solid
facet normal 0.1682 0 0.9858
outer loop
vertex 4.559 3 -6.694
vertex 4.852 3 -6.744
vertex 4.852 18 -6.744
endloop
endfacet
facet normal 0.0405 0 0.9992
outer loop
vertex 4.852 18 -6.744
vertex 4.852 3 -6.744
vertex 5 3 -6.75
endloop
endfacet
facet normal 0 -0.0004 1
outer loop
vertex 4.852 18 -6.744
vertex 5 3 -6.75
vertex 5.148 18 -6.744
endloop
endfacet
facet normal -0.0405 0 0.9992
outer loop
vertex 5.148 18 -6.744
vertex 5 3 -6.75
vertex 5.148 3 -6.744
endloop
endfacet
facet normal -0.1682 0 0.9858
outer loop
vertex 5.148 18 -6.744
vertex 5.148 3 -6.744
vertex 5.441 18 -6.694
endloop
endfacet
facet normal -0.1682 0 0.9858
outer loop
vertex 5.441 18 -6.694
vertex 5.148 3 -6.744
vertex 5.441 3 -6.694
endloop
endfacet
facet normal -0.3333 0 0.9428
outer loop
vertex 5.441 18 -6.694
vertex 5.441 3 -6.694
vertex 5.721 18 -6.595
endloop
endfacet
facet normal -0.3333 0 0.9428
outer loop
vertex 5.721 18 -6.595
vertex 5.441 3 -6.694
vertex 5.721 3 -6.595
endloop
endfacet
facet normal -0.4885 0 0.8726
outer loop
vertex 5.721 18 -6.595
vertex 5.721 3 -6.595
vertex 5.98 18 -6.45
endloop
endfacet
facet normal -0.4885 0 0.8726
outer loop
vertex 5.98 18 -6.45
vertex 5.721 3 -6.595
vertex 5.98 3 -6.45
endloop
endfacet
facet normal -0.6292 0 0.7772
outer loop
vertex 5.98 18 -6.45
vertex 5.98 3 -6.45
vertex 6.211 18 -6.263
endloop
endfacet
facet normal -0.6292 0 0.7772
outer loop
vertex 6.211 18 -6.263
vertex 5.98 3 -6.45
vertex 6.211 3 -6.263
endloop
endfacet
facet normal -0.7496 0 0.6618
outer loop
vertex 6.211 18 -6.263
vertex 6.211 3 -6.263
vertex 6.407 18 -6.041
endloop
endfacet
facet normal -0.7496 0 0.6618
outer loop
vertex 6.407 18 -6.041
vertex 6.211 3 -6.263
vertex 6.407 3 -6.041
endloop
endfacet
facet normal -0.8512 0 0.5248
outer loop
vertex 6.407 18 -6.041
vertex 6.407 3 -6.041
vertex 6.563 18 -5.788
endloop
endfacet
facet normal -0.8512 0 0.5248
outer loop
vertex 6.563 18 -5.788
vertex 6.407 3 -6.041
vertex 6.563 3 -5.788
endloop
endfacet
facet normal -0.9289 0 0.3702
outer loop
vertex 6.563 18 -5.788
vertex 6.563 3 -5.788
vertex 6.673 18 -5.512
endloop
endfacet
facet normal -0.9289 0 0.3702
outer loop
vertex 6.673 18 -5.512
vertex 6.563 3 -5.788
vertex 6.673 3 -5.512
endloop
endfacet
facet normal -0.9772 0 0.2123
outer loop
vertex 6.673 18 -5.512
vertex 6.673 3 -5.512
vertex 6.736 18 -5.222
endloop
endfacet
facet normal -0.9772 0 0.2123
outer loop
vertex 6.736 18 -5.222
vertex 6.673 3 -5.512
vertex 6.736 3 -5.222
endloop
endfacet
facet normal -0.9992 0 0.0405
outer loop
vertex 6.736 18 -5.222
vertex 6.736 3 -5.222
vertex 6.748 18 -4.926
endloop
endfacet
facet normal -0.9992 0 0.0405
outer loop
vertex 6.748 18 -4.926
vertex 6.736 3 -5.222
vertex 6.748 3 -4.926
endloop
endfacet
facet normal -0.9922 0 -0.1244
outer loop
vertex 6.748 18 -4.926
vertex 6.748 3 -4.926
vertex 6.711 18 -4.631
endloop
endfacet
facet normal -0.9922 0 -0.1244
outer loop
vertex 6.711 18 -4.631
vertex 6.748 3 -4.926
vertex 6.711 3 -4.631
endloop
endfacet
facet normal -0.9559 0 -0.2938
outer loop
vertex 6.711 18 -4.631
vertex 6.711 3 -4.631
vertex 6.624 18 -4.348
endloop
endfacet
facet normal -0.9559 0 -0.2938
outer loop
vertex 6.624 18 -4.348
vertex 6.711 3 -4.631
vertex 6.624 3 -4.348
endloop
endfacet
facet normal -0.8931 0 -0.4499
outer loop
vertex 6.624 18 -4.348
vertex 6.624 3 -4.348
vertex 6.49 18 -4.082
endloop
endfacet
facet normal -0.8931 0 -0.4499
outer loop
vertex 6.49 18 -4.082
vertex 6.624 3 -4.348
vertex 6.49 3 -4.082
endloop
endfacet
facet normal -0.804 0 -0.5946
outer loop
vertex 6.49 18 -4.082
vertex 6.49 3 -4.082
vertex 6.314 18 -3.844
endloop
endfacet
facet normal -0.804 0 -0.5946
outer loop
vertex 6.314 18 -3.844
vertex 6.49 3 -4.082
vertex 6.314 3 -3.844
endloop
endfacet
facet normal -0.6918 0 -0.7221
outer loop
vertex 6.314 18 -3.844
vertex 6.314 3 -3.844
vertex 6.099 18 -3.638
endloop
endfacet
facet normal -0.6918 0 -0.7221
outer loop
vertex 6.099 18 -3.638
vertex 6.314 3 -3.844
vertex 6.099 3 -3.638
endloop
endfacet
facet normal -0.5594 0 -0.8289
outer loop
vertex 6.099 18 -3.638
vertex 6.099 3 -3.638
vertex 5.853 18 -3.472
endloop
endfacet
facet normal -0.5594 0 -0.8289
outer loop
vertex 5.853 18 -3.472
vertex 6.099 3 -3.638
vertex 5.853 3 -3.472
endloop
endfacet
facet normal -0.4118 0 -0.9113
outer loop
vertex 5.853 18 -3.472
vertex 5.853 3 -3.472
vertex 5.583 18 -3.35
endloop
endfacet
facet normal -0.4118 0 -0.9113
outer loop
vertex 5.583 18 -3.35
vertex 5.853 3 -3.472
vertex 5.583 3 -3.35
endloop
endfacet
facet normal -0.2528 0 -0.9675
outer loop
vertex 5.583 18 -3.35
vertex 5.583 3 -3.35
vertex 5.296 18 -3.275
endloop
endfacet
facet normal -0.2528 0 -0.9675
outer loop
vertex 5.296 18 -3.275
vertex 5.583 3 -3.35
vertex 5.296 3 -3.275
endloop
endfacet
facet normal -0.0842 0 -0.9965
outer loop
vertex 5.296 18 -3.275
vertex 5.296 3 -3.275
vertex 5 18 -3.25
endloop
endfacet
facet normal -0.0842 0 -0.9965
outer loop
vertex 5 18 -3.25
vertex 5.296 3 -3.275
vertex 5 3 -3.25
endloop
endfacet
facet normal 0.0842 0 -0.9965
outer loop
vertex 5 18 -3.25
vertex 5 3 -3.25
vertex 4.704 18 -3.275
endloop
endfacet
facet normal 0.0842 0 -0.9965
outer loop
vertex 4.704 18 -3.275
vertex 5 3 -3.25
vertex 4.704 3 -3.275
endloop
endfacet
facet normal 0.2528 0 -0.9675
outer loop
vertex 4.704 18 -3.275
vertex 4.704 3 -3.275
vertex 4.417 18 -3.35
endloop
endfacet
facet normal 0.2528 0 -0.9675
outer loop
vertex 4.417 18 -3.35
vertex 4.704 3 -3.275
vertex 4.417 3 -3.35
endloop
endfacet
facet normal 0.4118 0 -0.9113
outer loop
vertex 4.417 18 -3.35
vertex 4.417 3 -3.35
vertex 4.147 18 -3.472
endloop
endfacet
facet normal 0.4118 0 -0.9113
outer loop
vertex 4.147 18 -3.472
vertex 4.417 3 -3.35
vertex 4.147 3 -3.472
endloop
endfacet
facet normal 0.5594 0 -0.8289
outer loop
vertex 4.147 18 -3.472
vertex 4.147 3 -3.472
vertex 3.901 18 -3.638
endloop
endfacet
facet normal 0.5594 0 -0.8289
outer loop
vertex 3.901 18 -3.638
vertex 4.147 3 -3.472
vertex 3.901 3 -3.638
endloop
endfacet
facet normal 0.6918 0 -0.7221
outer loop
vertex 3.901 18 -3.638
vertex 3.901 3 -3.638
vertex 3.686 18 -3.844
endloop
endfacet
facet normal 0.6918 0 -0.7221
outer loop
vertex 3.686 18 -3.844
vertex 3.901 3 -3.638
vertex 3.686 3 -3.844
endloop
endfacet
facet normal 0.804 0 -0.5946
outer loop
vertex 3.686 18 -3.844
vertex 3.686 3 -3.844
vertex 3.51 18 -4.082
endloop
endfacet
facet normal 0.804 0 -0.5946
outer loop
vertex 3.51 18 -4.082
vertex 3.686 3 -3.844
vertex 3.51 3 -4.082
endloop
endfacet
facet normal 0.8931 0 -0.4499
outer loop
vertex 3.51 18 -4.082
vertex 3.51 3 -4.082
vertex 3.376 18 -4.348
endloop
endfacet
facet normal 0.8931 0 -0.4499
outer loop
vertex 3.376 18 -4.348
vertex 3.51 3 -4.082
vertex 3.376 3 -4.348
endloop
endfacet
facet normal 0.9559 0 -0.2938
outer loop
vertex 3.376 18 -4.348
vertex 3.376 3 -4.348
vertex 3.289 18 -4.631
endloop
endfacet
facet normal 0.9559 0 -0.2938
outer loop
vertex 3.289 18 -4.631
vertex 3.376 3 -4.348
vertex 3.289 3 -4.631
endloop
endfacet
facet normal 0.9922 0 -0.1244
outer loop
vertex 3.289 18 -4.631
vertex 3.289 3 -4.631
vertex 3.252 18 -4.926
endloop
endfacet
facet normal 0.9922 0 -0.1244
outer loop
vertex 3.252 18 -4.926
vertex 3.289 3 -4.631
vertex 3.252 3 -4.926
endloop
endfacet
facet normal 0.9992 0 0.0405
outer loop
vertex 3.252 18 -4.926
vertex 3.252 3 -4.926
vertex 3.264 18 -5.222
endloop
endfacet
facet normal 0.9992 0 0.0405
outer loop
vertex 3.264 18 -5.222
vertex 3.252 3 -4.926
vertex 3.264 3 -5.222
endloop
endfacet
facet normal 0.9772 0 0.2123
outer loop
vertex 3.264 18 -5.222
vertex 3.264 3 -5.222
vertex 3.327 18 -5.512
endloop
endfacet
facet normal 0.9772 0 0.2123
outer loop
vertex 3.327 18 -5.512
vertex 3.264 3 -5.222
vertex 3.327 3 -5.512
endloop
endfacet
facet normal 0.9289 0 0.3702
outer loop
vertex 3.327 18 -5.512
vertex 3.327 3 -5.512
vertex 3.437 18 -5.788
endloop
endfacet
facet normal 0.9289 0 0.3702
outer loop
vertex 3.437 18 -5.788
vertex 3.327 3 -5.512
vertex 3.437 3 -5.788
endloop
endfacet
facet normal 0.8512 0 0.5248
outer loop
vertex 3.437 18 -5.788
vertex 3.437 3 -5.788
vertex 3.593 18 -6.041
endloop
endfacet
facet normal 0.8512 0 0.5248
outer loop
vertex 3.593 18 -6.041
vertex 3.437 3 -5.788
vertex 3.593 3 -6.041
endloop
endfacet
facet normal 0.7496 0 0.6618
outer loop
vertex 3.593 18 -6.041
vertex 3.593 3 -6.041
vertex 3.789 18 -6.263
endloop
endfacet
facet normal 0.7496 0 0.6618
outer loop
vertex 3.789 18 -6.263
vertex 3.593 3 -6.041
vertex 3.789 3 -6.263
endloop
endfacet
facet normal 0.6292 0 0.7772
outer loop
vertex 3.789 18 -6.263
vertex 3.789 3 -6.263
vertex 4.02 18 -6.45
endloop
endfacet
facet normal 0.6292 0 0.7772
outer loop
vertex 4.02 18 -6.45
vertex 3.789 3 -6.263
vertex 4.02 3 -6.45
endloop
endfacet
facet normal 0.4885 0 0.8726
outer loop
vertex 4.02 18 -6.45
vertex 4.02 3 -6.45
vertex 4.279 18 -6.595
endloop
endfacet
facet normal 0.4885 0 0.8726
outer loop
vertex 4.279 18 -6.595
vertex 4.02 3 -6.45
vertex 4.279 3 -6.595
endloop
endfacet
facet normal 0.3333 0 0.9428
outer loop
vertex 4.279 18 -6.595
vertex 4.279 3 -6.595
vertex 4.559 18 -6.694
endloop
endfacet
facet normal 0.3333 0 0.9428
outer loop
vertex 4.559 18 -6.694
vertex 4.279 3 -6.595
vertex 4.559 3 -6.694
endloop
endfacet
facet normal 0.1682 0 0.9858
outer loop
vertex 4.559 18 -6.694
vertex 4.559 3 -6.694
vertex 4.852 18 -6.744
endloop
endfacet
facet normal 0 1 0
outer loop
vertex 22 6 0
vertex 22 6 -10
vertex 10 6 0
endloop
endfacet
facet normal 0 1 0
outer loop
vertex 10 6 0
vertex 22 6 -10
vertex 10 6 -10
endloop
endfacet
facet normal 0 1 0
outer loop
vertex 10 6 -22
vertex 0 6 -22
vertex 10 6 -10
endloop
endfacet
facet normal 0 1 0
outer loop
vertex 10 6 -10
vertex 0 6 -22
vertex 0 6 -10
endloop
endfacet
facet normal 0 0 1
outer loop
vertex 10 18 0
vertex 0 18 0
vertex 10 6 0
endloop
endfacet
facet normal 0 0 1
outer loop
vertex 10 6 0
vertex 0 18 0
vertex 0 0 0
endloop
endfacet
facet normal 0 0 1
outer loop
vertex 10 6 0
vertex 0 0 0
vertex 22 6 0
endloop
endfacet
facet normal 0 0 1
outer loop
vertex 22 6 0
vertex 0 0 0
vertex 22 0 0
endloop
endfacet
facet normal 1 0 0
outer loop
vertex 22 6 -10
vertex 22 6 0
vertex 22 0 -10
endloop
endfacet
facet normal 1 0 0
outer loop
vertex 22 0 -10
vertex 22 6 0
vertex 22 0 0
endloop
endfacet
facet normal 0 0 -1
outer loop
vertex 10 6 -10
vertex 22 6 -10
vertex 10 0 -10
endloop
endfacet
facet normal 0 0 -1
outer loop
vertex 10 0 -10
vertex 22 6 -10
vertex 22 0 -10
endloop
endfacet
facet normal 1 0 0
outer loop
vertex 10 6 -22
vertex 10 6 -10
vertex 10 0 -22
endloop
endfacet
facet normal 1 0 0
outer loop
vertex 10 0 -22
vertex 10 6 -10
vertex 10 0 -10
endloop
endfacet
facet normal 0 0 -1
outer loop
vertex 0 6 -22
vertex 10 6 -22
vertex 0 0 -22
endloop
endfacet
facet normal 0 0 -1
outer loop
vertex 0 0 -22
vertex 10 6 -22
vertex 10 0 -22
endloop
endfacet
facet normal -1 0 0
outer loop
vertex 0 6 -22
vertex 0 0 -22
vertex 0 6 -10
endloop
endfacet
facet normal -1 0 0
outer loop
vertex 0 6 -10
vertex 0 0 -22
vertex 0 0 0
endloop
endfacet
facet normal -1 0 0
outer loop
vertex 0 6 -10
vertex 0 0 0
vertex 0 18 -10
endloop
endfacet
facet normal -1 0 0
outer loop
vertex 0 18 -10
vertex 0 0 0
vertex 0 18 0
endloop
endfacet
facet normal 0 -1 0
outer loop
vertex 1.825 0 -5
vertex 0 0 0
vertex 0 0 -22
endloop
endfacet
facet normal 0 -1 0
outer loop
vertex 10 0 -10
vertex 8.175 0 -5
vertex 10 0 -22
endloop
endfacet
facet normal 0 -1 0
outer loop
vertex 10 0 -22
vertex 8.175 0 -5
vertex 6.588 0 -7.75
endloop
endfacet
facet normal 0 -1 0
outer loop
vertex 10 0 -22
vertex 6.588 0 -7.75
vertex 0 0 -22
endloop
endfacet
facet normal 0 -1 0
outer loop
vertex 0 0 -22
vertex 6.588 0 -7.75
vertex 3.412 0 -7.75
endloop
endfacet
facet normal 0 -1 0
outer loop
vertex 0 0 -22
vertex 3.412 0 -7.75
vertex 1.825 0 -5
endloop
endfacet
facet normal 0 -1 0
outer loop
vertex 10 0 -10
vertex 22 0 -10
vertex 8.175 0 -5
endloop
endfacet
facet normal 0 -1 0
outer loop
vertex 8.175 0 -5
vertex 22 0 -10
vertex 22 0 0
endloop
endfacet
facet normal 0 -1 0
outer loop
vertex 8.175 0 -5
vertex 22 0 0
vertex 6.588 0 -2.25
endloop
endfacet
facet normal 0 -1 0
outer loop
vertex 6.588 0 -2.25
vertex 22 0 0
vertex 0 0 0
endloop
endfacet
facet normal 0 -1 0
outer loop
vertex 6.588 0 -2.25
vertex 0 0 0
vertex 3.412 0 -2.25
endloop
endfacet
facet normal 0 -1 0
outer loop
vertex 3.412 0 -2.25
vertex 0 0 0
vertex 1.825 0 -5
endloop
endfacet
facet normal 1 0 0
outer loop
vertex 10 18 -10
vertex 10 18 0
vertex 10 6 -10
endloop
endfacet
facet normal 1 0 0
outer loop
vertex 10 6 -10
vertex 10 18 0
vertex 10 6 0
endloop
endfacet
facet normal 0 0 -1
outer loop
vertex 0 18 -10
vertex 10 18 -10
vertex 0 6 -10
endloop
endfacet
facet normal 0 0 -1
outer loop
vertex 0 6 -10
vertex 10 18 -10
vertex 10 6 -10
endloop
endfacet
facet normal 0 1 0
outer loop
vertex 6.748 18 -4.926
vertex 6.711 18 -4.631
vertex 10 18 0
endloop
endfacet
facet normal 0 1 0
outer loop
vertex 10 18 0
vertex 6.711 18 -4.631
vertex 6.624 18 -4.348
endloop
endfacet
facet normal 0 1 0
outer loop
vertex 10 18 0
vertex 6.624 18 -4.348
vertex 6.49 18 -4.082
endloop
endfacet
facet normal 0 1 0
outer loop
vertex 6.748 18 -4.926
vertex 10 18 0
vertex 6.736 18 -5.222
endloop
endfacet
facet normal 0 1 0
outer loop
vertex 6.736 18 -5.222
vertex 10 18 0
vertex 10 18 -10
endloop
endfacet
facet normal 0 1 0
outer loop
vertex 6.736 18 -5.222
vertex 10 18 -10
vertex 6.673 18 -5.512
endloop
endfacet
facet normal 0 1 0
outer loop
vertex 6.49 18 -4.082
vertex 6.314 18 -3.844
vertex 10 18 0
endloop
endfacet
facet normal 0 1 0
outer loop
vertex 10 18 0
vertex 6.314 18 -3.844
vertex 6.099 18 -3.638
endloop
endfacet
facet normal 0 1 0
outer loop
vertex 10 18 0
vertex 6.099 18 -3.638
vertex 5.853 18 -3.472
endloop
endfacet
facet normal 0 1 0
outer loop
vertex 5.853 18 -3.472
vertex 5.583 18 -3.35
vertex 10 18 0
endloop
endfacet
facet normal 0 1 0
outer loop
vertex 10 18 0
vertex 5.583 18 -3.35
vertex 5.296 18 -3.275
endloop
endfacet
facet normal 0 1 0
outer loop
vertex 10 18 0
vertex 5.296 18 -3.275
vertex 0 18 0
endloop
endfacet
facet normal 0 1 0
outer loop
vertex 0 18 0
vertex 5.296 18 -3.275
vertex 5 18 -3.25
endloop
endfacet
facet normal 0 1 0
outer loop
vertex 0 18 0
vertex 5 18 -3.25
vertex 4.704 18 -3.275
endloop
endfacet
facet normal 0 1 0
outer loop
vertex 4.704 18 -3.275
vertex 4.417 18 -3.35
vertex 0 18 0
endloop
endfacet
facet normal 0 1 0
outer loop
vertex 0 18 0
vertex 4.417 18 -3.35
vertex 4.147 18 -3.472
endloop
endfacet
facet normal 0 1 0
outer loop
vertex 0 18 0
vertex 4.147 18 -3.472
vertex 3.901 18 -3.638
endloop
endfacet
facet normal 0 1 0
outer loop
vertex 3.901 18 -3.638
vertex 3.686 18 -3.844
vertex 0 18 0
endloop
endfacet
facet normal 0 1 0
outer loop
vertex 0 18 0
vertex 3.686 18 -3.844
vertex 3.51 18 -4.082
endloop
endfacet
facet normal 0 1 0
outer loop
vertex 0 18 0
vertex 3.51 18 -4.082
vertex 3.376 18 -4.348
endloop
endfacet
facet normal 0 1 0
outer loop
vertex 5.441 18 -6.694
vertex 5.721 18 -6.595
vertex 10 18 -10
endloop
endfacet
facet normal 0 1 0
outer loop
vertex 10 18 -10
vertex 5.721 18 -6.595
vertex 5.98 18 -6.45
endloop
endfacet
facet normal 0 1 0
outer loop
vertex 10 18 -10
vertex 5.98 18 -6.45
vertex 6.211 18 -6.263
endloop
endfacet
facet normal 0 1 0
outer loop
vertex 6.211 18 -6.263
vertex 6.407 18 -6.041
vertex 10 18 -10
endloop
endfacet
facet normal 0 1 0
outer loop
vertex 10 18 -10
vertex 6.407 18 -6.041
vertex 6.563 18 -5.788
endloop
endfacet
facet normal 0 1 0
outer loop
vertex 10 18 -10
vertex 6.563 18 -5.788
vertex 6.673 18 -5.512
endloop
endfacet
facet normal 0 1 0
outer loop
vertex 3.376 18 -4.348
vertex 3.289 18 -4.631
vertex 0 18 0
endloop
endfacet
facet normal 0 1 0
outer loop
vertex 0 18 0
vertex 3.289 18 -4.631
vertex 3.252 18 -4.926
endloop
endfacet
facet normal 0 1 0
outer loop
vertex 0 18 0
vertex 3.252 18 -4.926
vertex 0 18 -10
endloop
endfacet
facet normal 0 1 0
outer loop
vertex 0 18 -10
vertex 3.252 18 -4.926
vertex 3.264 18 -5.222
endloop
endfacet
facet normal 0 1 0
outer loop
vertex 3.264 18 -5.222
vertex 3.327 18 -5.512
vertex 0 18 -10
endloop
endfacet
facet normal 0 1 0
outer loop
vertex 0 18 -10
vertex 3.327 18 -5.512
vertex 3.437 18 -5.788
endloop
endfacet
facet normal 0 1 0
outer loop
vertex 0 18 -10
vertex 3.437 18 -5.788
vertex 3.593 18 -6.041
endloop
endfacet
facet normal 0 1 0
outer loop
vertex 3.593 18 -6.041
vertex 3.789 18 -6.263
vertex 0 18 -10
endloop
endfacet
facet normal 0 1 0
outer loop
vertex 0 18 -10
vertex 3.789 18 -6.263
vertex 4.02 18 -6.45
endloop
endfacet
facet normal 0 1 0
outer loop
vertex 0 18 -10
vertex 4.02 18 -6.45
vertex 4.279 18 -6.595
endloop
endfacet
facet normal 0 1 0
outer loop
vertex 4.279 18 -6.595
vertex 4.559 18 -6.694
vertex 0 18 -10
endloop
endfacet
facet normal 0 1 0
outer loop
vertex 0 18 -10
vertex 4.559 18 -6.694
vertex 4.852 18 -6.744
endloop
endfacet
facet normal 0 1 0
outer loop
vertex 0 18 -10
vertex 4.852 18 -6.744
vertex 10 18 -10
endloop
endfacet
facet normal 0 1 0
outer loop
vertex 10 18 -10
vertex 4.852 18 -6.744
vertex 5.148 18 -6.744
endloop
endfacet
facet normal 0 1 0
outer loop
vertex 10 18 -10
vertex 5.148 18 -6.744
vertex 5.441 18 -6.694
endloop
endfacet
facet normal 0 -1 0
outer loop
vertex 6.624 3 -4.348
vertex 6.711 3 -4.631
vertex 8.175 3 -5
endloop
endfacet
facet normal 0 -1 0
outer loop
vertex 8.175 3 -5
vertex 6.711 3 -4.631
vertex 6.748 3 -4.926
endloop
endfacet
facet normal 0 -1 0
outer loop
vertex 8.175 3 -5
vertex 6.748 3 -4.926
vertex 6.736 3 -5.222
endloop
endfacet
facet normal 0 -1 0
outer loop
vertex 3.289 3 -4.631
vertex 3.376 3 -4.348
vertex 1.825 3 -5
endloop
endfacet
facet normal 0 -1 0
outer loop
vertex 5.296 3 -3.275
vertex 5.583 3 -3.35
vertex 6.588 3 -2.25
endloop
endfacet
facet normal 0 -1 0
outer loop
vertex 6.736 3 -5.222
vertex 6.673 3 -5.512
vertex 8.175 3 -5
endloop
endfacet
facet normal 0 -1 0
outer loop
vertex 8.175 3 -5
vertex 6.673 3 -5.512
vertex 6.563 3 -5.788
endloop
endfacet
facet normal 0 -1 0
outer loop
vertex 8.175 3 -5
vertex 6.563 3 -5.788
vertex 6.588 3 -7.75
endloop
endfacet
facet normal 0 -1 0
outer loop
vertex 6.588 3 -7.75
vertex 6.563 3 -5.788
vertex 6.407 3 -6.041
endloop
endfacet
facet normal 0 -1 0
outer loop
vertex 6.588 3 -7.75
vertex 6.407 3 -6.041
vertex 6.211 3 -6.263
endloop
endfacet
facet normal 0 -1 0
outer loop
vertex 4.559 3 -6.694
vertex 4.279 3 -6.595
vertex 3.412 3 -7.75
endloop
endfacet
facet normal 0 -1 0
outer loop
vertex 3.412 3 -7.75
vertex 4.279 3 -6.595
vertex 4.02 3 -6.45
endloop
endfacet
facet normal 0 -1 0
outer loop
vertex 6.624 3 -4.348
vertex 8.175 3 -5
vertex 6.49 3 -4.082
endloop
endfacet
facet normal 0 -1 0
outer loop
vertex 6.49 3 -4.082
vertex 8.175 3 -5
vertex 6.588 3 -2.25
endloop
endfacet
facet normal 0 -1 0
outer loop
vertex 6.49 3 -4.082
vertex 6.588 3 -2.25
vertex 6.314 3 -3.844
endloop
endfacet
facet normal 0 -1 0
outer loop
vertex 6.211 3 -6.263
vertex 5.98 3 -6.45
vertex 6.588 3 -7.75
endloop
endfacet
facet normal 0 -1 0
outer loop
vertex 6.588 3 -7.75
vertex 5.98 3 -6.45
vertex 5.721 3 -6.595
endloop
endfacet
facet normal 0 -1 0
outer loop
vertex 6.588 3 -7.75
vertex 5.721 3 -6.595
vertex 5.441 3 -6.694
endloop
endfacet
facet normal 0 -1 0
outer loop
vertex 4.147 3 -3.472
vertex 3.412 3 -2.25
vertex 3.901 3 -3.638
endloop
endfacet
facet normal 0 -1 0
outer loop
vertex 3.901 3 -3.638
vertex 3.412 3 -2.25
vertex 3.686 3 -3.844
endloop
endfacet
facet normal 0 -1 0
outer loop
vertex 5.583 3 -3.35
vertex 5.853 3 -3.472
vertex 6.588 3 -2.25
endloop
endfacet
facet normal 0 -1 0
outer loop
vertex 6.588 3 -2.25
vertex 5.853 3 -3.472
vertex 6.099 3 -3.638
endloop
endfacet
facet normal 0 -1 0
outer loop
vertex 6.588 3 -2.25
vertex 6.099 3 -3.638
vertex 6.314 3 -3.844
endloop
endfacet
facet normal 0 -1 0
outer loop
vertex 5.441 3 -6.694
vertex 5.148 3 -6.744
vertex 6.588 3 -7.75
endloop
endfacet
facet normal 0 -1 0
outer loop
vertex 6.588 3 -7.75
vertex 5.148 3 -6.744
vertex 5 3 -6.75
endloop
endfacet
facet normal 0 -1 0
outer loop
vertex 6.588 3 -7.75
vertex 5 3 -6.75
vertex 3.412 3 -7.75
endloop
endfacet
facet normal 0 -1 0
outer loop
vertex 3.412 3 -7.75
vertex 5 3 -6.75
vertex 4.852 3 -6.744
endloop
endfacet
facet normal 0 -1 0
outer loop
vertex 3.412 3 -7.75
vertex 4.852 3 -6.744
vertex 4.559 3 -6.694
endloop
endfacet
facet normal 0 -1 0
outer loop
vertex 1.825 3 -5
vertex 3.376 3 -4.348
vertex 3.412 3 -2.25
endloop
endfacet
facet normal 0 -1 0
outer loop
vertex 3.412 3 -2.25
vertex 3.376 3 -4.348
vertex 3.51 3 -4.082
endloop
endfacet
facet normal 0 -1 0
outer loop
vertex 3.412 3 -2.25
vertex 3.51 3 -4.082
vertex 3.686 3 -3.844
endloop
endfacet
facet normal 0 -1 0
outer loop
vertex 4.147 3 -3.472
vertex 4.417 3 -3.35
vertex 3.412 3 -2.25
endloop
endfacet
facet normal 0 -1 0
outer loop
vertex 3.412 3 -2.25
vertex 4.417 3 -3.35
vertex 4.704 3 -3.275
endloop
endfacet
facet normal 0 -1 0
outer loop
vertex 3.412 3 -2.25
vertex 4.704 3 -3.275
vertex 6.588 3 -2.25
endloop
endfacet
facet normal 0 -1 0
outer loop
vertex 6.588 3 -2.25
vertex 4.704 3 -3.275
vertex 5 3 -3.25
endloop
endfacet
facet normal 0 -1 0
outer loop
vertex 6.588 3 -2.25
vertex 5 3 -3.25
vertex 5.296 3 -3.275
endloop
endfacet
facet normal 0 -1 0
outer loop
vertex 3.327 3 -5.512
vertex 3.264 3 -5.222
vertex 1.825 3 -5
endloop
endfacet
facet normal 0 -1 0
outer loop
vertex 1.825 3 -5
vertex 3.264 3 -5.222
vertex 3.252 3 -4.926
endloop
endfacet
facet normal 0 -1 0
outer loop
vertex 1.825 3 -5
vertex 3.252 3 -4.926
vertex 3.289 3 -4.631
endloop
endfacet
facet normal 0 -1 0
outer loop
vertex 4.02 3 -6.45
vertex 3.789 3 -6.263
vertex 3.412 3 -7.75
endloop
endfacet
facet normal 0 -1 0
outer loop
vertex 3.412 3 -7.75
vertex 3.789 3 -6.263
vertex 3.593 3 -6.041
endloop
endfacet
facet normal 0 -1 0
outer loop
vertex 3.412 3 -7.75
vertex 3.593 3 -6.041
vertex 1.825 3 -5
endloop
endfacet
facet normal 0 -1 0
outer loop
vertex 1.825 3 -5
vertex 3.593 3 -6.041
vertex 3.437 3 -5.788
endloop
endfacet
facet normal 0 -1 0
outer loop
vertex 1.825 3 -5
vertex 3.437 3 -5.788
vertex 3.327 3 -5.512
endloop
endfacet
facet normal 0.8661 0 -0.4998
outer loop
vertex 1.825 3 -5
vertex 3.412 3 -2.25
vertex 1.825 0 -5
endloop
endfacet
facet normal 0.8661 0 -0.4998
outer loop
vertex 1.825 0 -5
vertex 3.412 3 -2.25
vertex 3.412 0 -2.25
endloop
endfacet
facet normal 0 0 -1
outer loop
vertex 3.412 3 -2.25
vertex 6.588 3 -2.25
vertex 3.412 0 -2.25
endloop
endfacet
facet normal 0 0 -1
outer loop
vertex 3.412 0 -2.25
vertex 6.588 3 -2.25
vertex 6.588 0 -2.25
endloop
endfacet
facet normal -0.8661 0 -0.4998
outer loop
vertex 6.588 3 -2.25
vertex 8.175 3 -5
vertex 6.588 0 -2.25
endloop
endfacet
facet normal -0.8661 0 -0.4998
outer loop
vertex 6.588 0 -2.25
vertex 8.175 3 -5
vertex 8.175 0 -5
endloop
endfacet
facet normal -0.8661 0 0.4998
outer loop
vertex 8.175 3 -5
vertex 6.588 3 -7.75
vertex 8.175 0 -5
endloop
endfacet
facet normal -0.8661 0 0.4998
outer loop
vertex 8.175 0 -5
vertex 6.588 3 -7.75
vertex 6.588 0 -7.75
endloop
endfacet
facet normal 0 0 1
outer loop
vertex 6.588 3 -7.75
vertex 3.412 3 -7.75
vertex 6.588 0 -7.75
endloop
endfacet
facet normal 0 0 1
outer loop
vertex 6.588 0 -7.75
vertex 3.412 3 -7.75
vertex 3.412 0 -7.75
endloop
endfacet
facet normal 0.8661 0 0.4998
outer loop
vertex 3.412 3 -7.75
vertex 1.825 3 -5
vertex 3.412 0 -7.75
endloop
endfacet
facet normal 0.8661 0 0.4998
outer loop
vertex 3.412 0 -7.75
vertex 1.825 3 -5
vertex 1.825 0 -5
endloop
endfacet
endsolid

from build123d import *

# Parameters (mm, degrees)
BOSS_EXTRUDE1_DEPTH = 6
SKETCH2_W           = 10
SKETCH2_H           = 10
BOSS_EXTRUDE2_DEPTH = 12
SKETCH3_R           = 1.75
CUT_EXTRUDE1_DEPTH  = 36.944401511
CUT_EXTRUDE2_DEPTH  = 3


with BuildPart() as part:
    # Sketch1 → Boss-Extrude1 (new body)
    with BuildSketch(Plane(origin=(0, 0, 0), x_dir=(1, 0, 0), z_dir=(0, 1, 0))):
        Polygon((0, 0), (0, 22), (10, 22), (10, 10), (22, 10), (22, 0), align=None)
    extrude(amount=BOSS_EXTRUDE1_DEPTH)

    # Sketch2 → Boss-Extrude2 (add)
    with BuildSketch(Plane(origin=(0, 6, 0), x_dir=(1, 0, 0), z_dir=(0, 1, 0))):
        with Locations((5, 5)):
            Rectangle(SKETCH2_W, SKETCH2_H)
    extrude(amount=BOSS_EXTRUDE2_DEPTH)

    # Sketch3 → Cut-Extrude1 (cut, through all)
    with BuildSketch(Plane(origin=(0, 18, 0), x_dir=(1, 0, 0), z_dir=(0, 1, 0))):
        with Locations(Location((5, 5, 0), (0, 0, 270))):
            Circle(SKETCH3_R)
    extrude(amount=-CUT_EXTRUDE1_DEPTH, mode=Mode.SUBTRACT)

    # Sketch4 → Cut-Extrude2 (cut)
    with BuildSketch(Plane.XZ):
        Polygon((1.824573519, -5), (3.41228676, -7.75), (6.58771324, -7.75), (8.175426481, -5), (6.58771324, -2.25), (3.41228676, -2.25), align=None)
    extrude(amount=-CUT_EXTRUDE2_DEPTH, mode=Mode.SUBTRACT)


solid = part.part
